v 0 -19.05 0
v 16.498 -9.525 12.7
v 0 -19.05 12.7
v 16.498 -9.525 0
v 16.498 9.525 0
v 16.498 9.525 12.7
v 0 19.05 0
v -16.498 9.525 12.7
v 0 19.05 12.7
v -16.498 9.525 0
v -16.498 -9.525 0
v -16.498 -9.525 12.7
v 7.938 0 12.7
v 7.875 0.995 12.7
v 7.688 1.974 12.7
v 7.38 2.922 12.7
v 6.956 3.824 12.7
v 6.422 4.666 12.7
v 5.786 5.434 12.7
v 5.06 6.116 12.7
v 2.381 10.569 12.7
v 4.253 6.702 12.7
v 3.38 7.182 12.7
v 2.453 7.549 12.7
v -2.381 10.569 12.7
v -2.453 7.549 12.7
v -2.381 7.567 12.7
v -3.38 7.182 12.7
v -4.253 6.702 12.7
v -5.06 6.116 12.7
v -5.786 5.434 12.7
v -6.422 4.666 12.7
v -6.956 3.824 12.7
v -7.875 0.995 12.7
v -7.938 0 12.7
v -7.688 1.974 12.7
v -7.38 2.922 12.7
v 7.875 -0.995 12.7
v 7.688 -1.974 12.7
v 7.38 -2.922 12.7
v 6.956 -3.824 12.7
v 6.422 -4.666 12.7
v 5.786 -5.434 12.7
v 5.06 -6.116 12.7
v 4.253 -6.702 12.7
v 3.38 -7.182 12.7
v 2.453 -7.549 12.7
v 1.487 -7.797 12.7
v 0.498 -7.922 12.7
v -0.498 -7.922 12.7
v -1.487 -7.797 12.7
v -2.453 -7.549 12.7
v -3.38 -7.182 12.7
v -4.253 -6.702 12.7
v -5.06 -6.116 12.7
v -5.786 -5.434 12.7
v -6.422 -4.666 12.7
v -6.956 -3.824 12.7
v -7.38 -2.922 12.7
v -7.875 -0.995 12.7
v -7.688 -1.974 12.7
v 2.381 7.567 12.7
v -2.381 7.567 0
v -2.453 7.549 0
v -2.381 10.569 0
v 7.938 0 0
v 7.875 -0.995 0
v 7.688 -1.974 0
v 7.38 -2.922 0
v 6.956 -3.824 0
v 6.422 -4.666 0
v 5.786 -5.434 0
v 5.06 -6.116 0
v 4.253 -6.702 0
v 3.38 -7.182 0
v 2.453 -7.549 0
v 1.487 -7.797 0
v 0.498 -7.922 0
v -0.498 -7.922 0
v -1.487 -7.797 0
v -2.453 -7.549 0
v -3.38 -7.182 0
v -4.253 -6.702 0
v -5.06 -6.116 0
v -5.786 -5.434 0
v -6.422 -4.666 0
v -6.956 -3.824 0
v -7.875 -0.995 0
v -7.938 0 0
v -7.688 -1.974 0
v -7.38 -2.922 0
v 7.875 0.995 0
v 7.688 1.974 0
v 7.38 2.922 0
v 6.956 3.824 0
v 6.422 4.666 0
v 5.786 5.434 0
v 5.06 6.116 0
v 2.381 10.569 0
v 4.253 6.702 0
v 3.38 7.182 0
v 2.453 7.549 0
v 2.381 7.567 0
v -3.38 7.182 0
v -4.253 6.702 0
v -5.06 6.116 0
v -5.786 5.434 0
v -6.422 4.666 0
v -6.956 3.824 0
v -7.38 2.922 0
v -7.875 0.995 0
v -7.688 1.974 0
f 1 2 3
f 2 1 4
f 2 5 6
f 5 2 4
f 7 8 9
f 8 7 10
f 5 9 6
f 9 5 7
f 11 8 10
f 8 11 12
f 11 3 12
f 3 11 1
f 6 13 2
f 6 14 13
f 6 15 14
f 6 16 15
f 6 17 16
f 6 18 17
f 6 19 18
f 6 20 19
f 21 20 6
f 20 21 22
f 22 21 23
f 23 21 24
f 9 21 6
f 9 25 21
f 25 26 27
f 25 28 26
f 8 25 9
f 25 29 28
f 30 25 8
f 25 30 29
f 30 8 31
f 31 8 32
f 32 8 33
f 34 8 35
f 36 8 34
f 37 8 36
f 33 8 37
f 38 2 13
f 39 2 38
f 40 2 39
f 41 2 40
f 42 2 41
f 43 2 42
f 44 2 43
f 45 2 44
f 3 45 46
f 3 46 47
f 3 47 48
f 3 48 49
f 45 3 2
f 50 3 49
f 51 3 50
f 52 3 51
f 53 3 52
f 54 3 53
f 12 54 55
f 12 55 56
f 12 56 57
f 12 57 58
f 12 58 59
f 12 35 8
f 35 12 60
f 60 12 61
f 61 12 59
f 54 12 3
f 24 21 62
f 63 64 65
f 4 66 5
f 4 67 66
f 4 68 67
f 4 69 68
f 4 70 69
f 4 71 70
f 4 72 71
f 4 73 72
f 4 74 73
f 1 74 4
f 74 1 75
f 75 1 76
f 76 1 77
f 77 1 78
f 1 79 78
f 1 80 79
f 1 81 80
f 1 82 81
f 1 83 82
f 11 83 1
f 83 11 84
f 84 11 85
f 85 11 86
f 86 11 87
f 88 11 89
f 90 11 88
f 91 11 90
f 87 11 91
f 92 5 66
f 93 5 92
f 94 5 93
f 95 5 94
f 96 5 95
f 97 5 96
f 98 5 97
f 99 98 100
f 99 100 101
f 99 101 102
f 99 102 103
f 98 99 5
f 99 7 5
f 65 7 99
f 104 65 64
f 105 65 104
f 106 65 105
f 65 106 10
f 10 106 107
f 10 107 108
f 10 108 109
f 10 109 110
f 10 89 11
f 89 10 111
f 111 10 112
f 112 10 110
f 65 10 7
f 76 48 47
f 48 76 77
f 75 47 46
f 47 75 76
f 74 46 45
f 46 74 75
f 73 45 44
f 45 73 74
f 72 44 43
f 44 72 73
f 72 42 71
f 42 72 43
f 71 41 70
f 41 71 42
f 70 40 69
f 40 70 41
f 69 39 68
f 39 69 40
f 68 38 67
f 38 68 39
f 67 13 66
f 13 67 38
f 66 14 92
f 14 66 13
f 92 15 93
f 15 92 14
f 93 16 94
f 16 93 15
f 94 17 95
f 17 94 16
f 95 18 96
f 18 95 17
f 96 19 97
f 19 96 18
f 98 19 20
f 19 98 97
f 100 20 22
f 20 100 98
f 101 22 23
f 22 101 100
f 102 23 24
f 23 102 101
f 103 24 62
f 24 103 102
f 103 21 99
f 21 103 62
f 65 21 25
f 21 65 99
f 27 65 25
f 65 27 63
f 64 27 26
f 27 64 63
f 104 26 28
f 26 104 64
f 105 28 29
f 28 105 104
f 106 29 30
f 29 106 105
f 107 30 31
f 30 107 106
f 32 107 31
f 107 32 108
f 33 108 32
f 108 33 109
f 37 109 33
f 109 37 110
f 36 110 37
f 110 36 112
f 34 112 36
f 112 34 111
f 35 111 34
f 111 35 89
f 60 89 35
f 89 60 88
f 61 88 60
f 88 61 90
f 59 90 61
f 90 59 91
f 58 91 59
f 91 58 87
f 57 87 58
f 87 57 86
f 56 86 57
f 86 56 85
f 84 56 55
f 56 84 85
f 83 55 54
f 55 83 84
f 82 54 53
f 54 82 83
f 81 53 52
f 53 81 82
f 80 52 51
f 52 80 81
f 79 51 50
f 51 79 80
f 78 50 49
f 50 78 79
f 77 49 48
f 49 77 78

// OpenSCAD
// file: ../common/math.scad
//
// just some useful general math utilities
//

//
// min() and max() give you the lower or higher of their arguments,
// respectively.  They behave asymmetrically at 0, so as to establish a
// stable sort order, merely reversed, no matter which order the inputs come
// in.
//
// contributed by @vathpela
//
function min(x, y) = y > x ? x : y;
function max(x, y) = x >= y ? x : y;

//
// logx(x, b) is log base x of b aka logX(b)
//
// *sigh*, openscad's math primitives are so defective
//
// contributed by @vathpela
//
function logx(x, b) = log(x) / log(b);
// file: ../common/utils.scad
/*
  author: Christopher O'Brien  <obriencj@gmail.com>
  license: GPL v3
*/


module duplicate(move_v=[0,0,0], rotate_v=[0,0,0]) {
     children();
     translate(move_v) {
	  rotate(rotate_v) {
	       children();
	  };
     };
}


module rounded_plate(width, height, thickness, turn_r=5.1, $fn=50) {
     turn_d = turn_r * 2;

     translate([turn_r, turn_r, 0]) {
	  linear_extrude(thickness) {
	       minkowski() {
		    square([width - turn_d, height - turn_d]);
		    circle(turn_r);
	       };
	  };
     };
}


module words(txt_v, size=6, thick=5,
             font="Liberation Sans", style="Bold",
             halign="center", valign="center", $fn=50) {

     fontstyle = str(font, ":style=", style);

     linear_extrude(height=thick) {
          for(i = [0 : len(txt_v) - 1]) {
               translate([0, i * -(size + 2), 0])
                    text(txt_v[i], size=size, font=fontstyle,
                         halign=halign, valign=valign);
          };
     };
}


// The end.
// file: ../common/copies.scad
/*
  author: Christopher O'Brien  <obriencj@gmail.com>
  license: GPL v3
*/
use <../common/math.scad>

module copy_mirror(plane=[0, 0, 1]) {
     children();
     mirror(plane) children();
}


module copy_translate(x=0, y=0, z=0, copies=1) {
     if(copies) {
	  for(i = [0:copies]) {
	       translate([x * i, y * i, z * i]) {
		    children();
	       };
	  };
     } else {
	  children();
     };
}


module copy_rotate(x=0, y=0, z=0, copies=1) {
     if(copies) {
	  for(i = [0:copies]) {
	       rotate([x * i, y * i, z * i]) {
		    children();
	       };
	  };
     } else {
	  children();
     };
}


module copy_grid(offsets=[0, 0, 0], grid=[1, 1, 1]) {
     copy_translate(x=offsets.x, copies=grid.x-1) {
	  copy_translate(y=offsets.y, copies=grid.y-1) {
	       copy_translate(z=offsets.z, copies=grid.z-1) {
		    children();
	       };
	  };
     };
}


module duplicate(move_v=[0,0,0], rotate_v=[0,0,0]) {
     children();
     translate(move_v) {
	  rotate(rotate_v) {
	       children();
	  };
     };
}


//
// isomers() builds stereoisometric copies, horrifyingly laid out on the xy
// plane.
//
// you can specify how many copies with n=<NUMBER> or ns[xN, yN, zN],
// n=1 is the same as ns=[1, 0, 0]
// If the single n is nonzero, it is used, else the vector is.
//
// This is astonishingly close to actual n-dimensional chess.  You probably
// only want to choose n>1 on 2 or fewer planes at the same time. Inputs:
//
// contributed by @vathpela
//
module isomers(n=0, ns=[1, 0, 0], size=[1, 1, 1], debug=false)
{
    nm = [n ? n : ns[0], n ? 1 : ns[1], n ? 1 : ns[2]];

    xn = max(nm[0], 1);
    yn = max(nm[1], 1);
    zn = max(nm[2], 1);
    if (debug)
        echo("[xn,yn,zn]", [xn,yn,zn]);
    m = logn(xn*yn*zn, 2);

    xs = size[0];
    ys = size[1];
    zs = size[2];
    if (debug)
        echo("[xs,ys,zs]", [xs,ys,zs]);

    module zmirrorshift(origin=[0, 0, 0], x, y)
    {
        if (debug)
            echo("zmirror origin", origin);
        for (z = [0:1:zn-1])
        {
            shift0 = [origin[0] + xs/2 * 1.2 * (z-0.5)*-zn,
                      origin[1],
                      origin[2] + zs];
            shift1 = [origin[0] + xs/2 * 1.2 * (z-3.5)*zn - (xn) * xs * 1.2,
                      origin[1],
                      origin[2]];
            shift2 = [origin[0] + xs/2 * 1.2 * (z-0.5)*-zn,
                      origin[1],
                      origin[2]];

            if (z % 2 == 0 && zn != 1) {
                if (debug)
                    echo("za [z]", [z], "[zs]", [zs], "t([x,y,z])", shift0);
                translate(shift0) mirror([0, 0, 1]) children();
            } else {
                if (debug)
                    echo("zb [z]", [z], "[zs]", [zs], "t([x,y,z])", shift1);
                translate(zn == 1 ? shift2 : shift1) children();
            }
        }
    }

    module ymirrorshift(origin=[0, 0, 0], x)
    {
        if (debug)
            echo("ymirror origin", origin);
        for (y = [0:1:yn-1])
        {
            shift=[origin[0],
                   origin[1] + y * ys * 1.2,
                   origin[2]];
            if (debug)
                echo("ya [x,y,z]", [x,y,0], "[ys,zs]", [ys,zs], "t([x,y,z])", shift);
            if (y % 2 == 0) {
                zmirrorshift(shift, x, y) mirror([0, 1, 0]) children();
            } else {
                zmirrorshift(shift, x, y) children();
            }
        }
    }

    module xmirrorshift(origin=[0, 0, 0])
    {
        if (debug)
            echo("xmirror origin", origin);
        for (x = [0:1:xn-1])
        {
            shift=[origin[0] + x * xs * 1.2,
                   origin[1],
                   origin[2]];
            if (debug)
                echo("xa [x,y,z]", [x,0,0],
                     "[xs,ys,zs]", [xs,ys,zs],
                     "t([x,y,z])", shift);
            if (x % 2 == 0) {
                ymirrorshift(shift, x) mirror([1, 0, 0]) children();
            } else {
                ymirrorshift(shift, x) children();
            }
        }
    }

    xmirrorshift() children();
}

// The end.
// file: ../gears/speed_holes.scad
/*
  author: Christopher O'Brien  <obriencj@gmail.com>
  license: GPL v3

  Some modules for cutting a "speed holes" in a gear. Due to the extra
  walls, these can actually make the gear stronger while also reducing
  material usage.
*/


use <../common/copies.scad>;
use <../common/utils.scad>;


function speed_hole_threshold() = 5;


function speed_hole_count(ring_r, hole_r) =
     let(inside_r = ring_r - hole_r,
	 theta = asin(hole_r / (hole_r + inside_r)),
	 count = floor(180 / theta))
     count;


module _speed_holes(inner_r, outer_r, spacing=2, $fn=100) {
     ring_r = inner_r + ((outer_r - inner_r) / 2);
     hole_r = (outer_r - ring_r) - spacing;

     if(hole_r > speed_hole_threshold()) {

	  // count of holes (without spacing) that fir around the ring
	  holes = speed_hole_count(ring_r, hole_r + spacing);
	  hole_degrees = 360 / holes;

	  // this is just so that the keyway will be offset from any
	  // holes
	  turn = (holes % 2) ? 0: hole_degrees / 2;

	  copy_rotate(z=hole_degrees, copies=(holes - 1)) {
	       rotate([0, 0, turn]) {
		    translate([0, -ring_r]) {
			 circle(hole_r);
		    };
	       };
	  };
     };
}


module with_speed_holes(inner_r, outer_r, thick, $fn=100) {

     2d_cutout(thick, [0, 0, 0]) {
	  children();
	  #_speed_holes(inner_r, outer_r, $fn=$fn);
     };
}


// The end.
// file: ../gears/gears.scad
/*
  author: Christopher O'Brien  <obriencj@gmail.com>
  license: GPL v3

  This is a refactored derivative of the spur and double-helix gears
  from https://www.thingiverse.com/thing:1604369
*/


use <../common/copies.scad>;


RAD = 57.29578;

function radians(x) = x / RAD;
function degrees(x) = x * RAD;


function involute_point(r, rho, off=undef) =
     let(p = r / cos(rho),
	 t = degrees(tan(rho) - radians(rho)),
	 ot = off? off - t: t,
	 x = p * cos(ot),
	 y = p * sin(ot))
     [x, y];


function involute_points(modul, teeth, pressure=20, helix=0) =
     let(gear_d = modul * teeth,
	 gear_r = gear_d / 2,

	 clearance =  (teeth < 3)? 0: modul / 6,
	 root_d = gear_d - 2 * (modul + clearance),
	 root_r = root_d / 2,

	 alpha_spur = atan(tan(pressure) / cos(helix)),
	 base_d = gear_d * cos(alpha_spur),
	 base_r = base_d / 2,

	 tip_d = gear_d + modul * ((modul < 1)? 2.2 : 2),
	 tip_r = tip_d / 2,
	 rho_tip = acos(base_r / tip_r),
	 rho_base = acos(base_r / gear_r),

	 phi_a = degrees(tan(rho_base) - radians(rho_base)),
	 tooth_width = (180 * 0.95) / teeth + 2 * phi_a,

	 rho_step = rho_tip / 16)
	 concat([[0, 0]],
		[for(i = [0:rho_step:rho_tip])
			  involute_point(base_r, i)],
		[for(i = [rho_tip:-rho_step:0])
			  involute_point(base_r, i, tooth_width)]);


module _2d_gear_tooth(modul, teeth, pressure=20, helix=0) {
     polygon(involute_points(modul, teeth, pressure, helix));
}


module 2d_gear(modul, teeth, pressure=20, helix=0) {
     gear_d = modul * teeth;
     gear_r = gear_d / 2;
     clearance =  (teeth < 3)? 0: modul / 6;
     root_d = gear_d - 2 * (modul + clearance);
     root_r = root_d / 2;

     circle(root_r, $fa=1, $fs=modul);

     copy_rotate(z=360 / teeth, copies=teeth) {
	  _2d_gear_tooth(modul, teeth, pressure, helix);
     };
}


module gear(modul, teeth, width, pressure=20, helix=0) {

     torsion_angle = helix?
	  let(gear_d = modul * teeth,
	      gear_r = gear_d / 2)
	  RAD * width / (gear_r * tan(90 - helix)):
	  0;

     linear_extrude(width, twist=torsion_angle) {
	  2d_gear(modul, teeth, pressure, helix);
     };
}


module herringbone_gear(modul, teeth, width, pressure=20, helix=30) {
     h_width = width / 2;

     translate([0, 0, h_width]) {
	  copy_mirror([0, 0, 1]) {
	       gear(modul, teeth, h_width, pressure, helix);
	  };
     };
}


herringbone_gear(1.5, 24, 20);


// The end.
// file: change_gears.scad
/*
  author: Christopher O'Brien  <obriencj@gmail.com>
  license: GPL v3

  Herringbone change gears for a Logan lathe.

  This set is a 24:48 with a 73 idler, which matches the assumptions
  of the model 820 Quick Change Gear Box.
*/


use <../common/units.scad>;
use <../gears/bore.scad>;
use <../gears/gears.scad>;
use <../gears/speed_holes.scad>;


function default_bore() = 5/8;
function default_thick() = 1/2;
function default_modul() = 1.5;
function default_helix(idler=false) = 30 * (idler? -1: 1);

function default_bore_mm() = inch_to_mm(default_bore());
function default_thick_mm() = inch_to_mm(default_thick());


module herringbone_change_gear(teefs, idler=false) {

     bore = default_bore();
     thick = default_thick();
     modul = default_modul();
     helix = default_helix(idler);

     bore_mm = default_bore_mm();
     thick_mm = default_thick_mm();

     // determine the space for the speed holes
     eng_keysize = eng_std_keysize(bore);
     inner_r = (bore_mm + inch_to_mm(eng_keysize)) / 2;
     outer_r = root_radius(modul, teefs) - 2;

     with_speed_holes(inner_r + 2, outer_r - 2, thick_mm) {
	  with_eng_std_bore(default_bore(), thick, keyed=true) {
	       herringbone_gear(modul, teefs, thick_mm, helix=helix);
	  };
     };
}


module gear_24() {
     herringbone_change_gear(24);
}


module gear_48() {
     herringbone_change_gear(48);
}


module gear_i73() {
     herringbone_change_gear(73, idler=true);
}


translate([-10, 20]) gear_24();
translate([-10, -50]) gear_48();
translate([90, 0]) gear_i73();


// The end.
// file: ../gears/bore.scad
/*
  author: Christopher O'Brien  <obriencj@gmail.com>
  license: GPL v3

  Some modules for cutting a bore through objects, with optional
  standard english key profiles.
*/



/*
  [[min diameter in inches, key width in inches], ...]
*/
function _eng_std_keysizes() =
     [[-1/0, 0],
      [5/16, 3/32],
      [1/2, 1/8],
      [5/8, 3/16],
      [15/16, 1/4],
      [21/16, 5/16],
      [23/16, 3/8],
      [29/16, 1/2],
      [37/16, 5/8],
      [45/16, 3/4],
      [53/16, 7/8],
      [61/16, 1],
      [1/0, undef]]; // Inf sentinal value


function _minmax_key_recur(val, index, table) =
     let(curr = table[index],
	 next = table[index + 1])
     ((curr[0] <= val) && (val < next[0]))? curr[1]:
     _minmax_key_recur(val, index + 1, table);


function eng_std_keysize(bore_d_inches) =
     bore_d_inches?
     _minmax_key_recur(bore_d_inches, 0, _eng_std_keysizes()):
     0;


function inch_to_mm(x) = x * 25.4;
function vec_inch_to_mm(v) = [for(x=v) inch_to_mm(x)];


module _2d_cutout(thick, position, overshoot=0.05) {

     // overshoot is used to prevent weird z-clipping artifacts, it
     // ensures that the subtracted shape is slightly thicker than the
     // solid body and passes both faces fully. If the cutout is not
     // meant to go all the way through, set overshoot to 0 and
     // overstate the thickness by some amount.

     oz = thick + (overshoot * 2);
     op = [position.x, position.y, position.z - overshoot];

     difference() {
	  children(0);
	  translate(op) {
	       linear_extrude(oz) {
		    children(1);
	       };
	  };
     };
}


module _bore(r, k, keygap=0.25) {
     // The the square key dimension k describes the height and width
     // of the key itself. While the width should match for the bore,
     // the height should have some "wiggle room." That value is the
     // keygap parameter.

     //echo("bore: r=", r, "k=", k);

     circle(r, $fa=1, $fs=1);
     if(k) {
	  translate([0, r + keygap]) {
	       square([k, k], true);
	  };
     };
}


module with_bore(bore_r, key, thick,
		 position=[0, 0, 0], angle=0,
		 overshoot=0.05) {

     _2d_cutout(thick, position, overshoot) {
	  union() {
	       children();
	  };
	  rotate([0, 0, angle]) {
	       _bore(bore_r, key);
	  };
     };
}


module with_eng_std_bore(bore_d_inches, depth_inches, keyed=false,
			 position=[0, 0, 0], angle=0,
			 overshoot=0.05) {

     r = inch_to_mm(bore_d_inches) / 2;
     k = inch_to_mm(keyed? eng_std_keysize(bore_d_inches): 0);
     z = inch_to_mm(depth_inches);
     with_bore(r, k, z, position, angle, overshoot) {
	  children();
     };
}


module with_1_2_inch_bore(depth_inches, keyed=false,
			  position=[0, 0, 0], angle=0,
			  overshoot=0.05) {

     with_eng_std_bore(1/2, depth_inches, keyed,
		       position, angle, overshoot) {
	  children();
     };
}


module with_5_8_inch_bore(depth_inches, keyed=false,
			  position=[0, 0, 0], angle=0,
			  overshoot=0.05) {

     with_eng_std_bore(5/8, depth_inches, keyed,
		       position, angle, overshoot) {
	  children();
     };
}


module eng_cube(eng_dimensions, center=false) {
     cube(vec_inch_to_mm(eng_dimensions), center=center);
}


module 5_8_inch_square_spacer(thick_inches, keyed=true) {

     // since the eng_cube will be centered, we need to shift the
     // starting position of the bore downwards by half that amount.
     pos = vec_inch_to_mm([0, 0, -thick_inches / 2]);

     with_5_8_inch_bore(thick_inches, keyed=keyed, position=pos, angle=45) {
	  eng_cube([1, 1, thick_inches], true);
     };
}


/* a 1" x 1" x 1/4" spacer with a 5/8" keyed bore */
5_8_inch_square_spacer(1/4);


// The end.
// file: ../common/units.scad
/*
  author: Christopher O'Brien  <obriencj@gmail.com>
  license: GPL v3

  Unit conversion stuff
*/


function inch_to_mm(x) = x * 25.4;
function vec_inch_to_mm(v) = [for(x=v) inch_to_mm(x)];

function mm_to_inch(x) = x / 25.4;
function vec_mm_to_inch(v) = [for(x=v) mm_to_inch(x)];


// The end.
// main file
/*
  author: Christopher O'Brien  <obriencj@gmail.com>
  license: GPL v3

  Small keyed spacer for use with the change gears.
*/


use <../common/units.scad>;
use <../gears/bore.scad>;

use <change_gears.scad>;


module gear_spacer() {
     with_eng_std_bore(default_bore(), default_thick(), keyed=true) {
	  rotate([0, 0, 30]) {
	       cylinder(default_thick_mm(), r=inch_to_mm(0.75), $fn=6);
	  };
     };
}


gear_spacer();


// The end.
